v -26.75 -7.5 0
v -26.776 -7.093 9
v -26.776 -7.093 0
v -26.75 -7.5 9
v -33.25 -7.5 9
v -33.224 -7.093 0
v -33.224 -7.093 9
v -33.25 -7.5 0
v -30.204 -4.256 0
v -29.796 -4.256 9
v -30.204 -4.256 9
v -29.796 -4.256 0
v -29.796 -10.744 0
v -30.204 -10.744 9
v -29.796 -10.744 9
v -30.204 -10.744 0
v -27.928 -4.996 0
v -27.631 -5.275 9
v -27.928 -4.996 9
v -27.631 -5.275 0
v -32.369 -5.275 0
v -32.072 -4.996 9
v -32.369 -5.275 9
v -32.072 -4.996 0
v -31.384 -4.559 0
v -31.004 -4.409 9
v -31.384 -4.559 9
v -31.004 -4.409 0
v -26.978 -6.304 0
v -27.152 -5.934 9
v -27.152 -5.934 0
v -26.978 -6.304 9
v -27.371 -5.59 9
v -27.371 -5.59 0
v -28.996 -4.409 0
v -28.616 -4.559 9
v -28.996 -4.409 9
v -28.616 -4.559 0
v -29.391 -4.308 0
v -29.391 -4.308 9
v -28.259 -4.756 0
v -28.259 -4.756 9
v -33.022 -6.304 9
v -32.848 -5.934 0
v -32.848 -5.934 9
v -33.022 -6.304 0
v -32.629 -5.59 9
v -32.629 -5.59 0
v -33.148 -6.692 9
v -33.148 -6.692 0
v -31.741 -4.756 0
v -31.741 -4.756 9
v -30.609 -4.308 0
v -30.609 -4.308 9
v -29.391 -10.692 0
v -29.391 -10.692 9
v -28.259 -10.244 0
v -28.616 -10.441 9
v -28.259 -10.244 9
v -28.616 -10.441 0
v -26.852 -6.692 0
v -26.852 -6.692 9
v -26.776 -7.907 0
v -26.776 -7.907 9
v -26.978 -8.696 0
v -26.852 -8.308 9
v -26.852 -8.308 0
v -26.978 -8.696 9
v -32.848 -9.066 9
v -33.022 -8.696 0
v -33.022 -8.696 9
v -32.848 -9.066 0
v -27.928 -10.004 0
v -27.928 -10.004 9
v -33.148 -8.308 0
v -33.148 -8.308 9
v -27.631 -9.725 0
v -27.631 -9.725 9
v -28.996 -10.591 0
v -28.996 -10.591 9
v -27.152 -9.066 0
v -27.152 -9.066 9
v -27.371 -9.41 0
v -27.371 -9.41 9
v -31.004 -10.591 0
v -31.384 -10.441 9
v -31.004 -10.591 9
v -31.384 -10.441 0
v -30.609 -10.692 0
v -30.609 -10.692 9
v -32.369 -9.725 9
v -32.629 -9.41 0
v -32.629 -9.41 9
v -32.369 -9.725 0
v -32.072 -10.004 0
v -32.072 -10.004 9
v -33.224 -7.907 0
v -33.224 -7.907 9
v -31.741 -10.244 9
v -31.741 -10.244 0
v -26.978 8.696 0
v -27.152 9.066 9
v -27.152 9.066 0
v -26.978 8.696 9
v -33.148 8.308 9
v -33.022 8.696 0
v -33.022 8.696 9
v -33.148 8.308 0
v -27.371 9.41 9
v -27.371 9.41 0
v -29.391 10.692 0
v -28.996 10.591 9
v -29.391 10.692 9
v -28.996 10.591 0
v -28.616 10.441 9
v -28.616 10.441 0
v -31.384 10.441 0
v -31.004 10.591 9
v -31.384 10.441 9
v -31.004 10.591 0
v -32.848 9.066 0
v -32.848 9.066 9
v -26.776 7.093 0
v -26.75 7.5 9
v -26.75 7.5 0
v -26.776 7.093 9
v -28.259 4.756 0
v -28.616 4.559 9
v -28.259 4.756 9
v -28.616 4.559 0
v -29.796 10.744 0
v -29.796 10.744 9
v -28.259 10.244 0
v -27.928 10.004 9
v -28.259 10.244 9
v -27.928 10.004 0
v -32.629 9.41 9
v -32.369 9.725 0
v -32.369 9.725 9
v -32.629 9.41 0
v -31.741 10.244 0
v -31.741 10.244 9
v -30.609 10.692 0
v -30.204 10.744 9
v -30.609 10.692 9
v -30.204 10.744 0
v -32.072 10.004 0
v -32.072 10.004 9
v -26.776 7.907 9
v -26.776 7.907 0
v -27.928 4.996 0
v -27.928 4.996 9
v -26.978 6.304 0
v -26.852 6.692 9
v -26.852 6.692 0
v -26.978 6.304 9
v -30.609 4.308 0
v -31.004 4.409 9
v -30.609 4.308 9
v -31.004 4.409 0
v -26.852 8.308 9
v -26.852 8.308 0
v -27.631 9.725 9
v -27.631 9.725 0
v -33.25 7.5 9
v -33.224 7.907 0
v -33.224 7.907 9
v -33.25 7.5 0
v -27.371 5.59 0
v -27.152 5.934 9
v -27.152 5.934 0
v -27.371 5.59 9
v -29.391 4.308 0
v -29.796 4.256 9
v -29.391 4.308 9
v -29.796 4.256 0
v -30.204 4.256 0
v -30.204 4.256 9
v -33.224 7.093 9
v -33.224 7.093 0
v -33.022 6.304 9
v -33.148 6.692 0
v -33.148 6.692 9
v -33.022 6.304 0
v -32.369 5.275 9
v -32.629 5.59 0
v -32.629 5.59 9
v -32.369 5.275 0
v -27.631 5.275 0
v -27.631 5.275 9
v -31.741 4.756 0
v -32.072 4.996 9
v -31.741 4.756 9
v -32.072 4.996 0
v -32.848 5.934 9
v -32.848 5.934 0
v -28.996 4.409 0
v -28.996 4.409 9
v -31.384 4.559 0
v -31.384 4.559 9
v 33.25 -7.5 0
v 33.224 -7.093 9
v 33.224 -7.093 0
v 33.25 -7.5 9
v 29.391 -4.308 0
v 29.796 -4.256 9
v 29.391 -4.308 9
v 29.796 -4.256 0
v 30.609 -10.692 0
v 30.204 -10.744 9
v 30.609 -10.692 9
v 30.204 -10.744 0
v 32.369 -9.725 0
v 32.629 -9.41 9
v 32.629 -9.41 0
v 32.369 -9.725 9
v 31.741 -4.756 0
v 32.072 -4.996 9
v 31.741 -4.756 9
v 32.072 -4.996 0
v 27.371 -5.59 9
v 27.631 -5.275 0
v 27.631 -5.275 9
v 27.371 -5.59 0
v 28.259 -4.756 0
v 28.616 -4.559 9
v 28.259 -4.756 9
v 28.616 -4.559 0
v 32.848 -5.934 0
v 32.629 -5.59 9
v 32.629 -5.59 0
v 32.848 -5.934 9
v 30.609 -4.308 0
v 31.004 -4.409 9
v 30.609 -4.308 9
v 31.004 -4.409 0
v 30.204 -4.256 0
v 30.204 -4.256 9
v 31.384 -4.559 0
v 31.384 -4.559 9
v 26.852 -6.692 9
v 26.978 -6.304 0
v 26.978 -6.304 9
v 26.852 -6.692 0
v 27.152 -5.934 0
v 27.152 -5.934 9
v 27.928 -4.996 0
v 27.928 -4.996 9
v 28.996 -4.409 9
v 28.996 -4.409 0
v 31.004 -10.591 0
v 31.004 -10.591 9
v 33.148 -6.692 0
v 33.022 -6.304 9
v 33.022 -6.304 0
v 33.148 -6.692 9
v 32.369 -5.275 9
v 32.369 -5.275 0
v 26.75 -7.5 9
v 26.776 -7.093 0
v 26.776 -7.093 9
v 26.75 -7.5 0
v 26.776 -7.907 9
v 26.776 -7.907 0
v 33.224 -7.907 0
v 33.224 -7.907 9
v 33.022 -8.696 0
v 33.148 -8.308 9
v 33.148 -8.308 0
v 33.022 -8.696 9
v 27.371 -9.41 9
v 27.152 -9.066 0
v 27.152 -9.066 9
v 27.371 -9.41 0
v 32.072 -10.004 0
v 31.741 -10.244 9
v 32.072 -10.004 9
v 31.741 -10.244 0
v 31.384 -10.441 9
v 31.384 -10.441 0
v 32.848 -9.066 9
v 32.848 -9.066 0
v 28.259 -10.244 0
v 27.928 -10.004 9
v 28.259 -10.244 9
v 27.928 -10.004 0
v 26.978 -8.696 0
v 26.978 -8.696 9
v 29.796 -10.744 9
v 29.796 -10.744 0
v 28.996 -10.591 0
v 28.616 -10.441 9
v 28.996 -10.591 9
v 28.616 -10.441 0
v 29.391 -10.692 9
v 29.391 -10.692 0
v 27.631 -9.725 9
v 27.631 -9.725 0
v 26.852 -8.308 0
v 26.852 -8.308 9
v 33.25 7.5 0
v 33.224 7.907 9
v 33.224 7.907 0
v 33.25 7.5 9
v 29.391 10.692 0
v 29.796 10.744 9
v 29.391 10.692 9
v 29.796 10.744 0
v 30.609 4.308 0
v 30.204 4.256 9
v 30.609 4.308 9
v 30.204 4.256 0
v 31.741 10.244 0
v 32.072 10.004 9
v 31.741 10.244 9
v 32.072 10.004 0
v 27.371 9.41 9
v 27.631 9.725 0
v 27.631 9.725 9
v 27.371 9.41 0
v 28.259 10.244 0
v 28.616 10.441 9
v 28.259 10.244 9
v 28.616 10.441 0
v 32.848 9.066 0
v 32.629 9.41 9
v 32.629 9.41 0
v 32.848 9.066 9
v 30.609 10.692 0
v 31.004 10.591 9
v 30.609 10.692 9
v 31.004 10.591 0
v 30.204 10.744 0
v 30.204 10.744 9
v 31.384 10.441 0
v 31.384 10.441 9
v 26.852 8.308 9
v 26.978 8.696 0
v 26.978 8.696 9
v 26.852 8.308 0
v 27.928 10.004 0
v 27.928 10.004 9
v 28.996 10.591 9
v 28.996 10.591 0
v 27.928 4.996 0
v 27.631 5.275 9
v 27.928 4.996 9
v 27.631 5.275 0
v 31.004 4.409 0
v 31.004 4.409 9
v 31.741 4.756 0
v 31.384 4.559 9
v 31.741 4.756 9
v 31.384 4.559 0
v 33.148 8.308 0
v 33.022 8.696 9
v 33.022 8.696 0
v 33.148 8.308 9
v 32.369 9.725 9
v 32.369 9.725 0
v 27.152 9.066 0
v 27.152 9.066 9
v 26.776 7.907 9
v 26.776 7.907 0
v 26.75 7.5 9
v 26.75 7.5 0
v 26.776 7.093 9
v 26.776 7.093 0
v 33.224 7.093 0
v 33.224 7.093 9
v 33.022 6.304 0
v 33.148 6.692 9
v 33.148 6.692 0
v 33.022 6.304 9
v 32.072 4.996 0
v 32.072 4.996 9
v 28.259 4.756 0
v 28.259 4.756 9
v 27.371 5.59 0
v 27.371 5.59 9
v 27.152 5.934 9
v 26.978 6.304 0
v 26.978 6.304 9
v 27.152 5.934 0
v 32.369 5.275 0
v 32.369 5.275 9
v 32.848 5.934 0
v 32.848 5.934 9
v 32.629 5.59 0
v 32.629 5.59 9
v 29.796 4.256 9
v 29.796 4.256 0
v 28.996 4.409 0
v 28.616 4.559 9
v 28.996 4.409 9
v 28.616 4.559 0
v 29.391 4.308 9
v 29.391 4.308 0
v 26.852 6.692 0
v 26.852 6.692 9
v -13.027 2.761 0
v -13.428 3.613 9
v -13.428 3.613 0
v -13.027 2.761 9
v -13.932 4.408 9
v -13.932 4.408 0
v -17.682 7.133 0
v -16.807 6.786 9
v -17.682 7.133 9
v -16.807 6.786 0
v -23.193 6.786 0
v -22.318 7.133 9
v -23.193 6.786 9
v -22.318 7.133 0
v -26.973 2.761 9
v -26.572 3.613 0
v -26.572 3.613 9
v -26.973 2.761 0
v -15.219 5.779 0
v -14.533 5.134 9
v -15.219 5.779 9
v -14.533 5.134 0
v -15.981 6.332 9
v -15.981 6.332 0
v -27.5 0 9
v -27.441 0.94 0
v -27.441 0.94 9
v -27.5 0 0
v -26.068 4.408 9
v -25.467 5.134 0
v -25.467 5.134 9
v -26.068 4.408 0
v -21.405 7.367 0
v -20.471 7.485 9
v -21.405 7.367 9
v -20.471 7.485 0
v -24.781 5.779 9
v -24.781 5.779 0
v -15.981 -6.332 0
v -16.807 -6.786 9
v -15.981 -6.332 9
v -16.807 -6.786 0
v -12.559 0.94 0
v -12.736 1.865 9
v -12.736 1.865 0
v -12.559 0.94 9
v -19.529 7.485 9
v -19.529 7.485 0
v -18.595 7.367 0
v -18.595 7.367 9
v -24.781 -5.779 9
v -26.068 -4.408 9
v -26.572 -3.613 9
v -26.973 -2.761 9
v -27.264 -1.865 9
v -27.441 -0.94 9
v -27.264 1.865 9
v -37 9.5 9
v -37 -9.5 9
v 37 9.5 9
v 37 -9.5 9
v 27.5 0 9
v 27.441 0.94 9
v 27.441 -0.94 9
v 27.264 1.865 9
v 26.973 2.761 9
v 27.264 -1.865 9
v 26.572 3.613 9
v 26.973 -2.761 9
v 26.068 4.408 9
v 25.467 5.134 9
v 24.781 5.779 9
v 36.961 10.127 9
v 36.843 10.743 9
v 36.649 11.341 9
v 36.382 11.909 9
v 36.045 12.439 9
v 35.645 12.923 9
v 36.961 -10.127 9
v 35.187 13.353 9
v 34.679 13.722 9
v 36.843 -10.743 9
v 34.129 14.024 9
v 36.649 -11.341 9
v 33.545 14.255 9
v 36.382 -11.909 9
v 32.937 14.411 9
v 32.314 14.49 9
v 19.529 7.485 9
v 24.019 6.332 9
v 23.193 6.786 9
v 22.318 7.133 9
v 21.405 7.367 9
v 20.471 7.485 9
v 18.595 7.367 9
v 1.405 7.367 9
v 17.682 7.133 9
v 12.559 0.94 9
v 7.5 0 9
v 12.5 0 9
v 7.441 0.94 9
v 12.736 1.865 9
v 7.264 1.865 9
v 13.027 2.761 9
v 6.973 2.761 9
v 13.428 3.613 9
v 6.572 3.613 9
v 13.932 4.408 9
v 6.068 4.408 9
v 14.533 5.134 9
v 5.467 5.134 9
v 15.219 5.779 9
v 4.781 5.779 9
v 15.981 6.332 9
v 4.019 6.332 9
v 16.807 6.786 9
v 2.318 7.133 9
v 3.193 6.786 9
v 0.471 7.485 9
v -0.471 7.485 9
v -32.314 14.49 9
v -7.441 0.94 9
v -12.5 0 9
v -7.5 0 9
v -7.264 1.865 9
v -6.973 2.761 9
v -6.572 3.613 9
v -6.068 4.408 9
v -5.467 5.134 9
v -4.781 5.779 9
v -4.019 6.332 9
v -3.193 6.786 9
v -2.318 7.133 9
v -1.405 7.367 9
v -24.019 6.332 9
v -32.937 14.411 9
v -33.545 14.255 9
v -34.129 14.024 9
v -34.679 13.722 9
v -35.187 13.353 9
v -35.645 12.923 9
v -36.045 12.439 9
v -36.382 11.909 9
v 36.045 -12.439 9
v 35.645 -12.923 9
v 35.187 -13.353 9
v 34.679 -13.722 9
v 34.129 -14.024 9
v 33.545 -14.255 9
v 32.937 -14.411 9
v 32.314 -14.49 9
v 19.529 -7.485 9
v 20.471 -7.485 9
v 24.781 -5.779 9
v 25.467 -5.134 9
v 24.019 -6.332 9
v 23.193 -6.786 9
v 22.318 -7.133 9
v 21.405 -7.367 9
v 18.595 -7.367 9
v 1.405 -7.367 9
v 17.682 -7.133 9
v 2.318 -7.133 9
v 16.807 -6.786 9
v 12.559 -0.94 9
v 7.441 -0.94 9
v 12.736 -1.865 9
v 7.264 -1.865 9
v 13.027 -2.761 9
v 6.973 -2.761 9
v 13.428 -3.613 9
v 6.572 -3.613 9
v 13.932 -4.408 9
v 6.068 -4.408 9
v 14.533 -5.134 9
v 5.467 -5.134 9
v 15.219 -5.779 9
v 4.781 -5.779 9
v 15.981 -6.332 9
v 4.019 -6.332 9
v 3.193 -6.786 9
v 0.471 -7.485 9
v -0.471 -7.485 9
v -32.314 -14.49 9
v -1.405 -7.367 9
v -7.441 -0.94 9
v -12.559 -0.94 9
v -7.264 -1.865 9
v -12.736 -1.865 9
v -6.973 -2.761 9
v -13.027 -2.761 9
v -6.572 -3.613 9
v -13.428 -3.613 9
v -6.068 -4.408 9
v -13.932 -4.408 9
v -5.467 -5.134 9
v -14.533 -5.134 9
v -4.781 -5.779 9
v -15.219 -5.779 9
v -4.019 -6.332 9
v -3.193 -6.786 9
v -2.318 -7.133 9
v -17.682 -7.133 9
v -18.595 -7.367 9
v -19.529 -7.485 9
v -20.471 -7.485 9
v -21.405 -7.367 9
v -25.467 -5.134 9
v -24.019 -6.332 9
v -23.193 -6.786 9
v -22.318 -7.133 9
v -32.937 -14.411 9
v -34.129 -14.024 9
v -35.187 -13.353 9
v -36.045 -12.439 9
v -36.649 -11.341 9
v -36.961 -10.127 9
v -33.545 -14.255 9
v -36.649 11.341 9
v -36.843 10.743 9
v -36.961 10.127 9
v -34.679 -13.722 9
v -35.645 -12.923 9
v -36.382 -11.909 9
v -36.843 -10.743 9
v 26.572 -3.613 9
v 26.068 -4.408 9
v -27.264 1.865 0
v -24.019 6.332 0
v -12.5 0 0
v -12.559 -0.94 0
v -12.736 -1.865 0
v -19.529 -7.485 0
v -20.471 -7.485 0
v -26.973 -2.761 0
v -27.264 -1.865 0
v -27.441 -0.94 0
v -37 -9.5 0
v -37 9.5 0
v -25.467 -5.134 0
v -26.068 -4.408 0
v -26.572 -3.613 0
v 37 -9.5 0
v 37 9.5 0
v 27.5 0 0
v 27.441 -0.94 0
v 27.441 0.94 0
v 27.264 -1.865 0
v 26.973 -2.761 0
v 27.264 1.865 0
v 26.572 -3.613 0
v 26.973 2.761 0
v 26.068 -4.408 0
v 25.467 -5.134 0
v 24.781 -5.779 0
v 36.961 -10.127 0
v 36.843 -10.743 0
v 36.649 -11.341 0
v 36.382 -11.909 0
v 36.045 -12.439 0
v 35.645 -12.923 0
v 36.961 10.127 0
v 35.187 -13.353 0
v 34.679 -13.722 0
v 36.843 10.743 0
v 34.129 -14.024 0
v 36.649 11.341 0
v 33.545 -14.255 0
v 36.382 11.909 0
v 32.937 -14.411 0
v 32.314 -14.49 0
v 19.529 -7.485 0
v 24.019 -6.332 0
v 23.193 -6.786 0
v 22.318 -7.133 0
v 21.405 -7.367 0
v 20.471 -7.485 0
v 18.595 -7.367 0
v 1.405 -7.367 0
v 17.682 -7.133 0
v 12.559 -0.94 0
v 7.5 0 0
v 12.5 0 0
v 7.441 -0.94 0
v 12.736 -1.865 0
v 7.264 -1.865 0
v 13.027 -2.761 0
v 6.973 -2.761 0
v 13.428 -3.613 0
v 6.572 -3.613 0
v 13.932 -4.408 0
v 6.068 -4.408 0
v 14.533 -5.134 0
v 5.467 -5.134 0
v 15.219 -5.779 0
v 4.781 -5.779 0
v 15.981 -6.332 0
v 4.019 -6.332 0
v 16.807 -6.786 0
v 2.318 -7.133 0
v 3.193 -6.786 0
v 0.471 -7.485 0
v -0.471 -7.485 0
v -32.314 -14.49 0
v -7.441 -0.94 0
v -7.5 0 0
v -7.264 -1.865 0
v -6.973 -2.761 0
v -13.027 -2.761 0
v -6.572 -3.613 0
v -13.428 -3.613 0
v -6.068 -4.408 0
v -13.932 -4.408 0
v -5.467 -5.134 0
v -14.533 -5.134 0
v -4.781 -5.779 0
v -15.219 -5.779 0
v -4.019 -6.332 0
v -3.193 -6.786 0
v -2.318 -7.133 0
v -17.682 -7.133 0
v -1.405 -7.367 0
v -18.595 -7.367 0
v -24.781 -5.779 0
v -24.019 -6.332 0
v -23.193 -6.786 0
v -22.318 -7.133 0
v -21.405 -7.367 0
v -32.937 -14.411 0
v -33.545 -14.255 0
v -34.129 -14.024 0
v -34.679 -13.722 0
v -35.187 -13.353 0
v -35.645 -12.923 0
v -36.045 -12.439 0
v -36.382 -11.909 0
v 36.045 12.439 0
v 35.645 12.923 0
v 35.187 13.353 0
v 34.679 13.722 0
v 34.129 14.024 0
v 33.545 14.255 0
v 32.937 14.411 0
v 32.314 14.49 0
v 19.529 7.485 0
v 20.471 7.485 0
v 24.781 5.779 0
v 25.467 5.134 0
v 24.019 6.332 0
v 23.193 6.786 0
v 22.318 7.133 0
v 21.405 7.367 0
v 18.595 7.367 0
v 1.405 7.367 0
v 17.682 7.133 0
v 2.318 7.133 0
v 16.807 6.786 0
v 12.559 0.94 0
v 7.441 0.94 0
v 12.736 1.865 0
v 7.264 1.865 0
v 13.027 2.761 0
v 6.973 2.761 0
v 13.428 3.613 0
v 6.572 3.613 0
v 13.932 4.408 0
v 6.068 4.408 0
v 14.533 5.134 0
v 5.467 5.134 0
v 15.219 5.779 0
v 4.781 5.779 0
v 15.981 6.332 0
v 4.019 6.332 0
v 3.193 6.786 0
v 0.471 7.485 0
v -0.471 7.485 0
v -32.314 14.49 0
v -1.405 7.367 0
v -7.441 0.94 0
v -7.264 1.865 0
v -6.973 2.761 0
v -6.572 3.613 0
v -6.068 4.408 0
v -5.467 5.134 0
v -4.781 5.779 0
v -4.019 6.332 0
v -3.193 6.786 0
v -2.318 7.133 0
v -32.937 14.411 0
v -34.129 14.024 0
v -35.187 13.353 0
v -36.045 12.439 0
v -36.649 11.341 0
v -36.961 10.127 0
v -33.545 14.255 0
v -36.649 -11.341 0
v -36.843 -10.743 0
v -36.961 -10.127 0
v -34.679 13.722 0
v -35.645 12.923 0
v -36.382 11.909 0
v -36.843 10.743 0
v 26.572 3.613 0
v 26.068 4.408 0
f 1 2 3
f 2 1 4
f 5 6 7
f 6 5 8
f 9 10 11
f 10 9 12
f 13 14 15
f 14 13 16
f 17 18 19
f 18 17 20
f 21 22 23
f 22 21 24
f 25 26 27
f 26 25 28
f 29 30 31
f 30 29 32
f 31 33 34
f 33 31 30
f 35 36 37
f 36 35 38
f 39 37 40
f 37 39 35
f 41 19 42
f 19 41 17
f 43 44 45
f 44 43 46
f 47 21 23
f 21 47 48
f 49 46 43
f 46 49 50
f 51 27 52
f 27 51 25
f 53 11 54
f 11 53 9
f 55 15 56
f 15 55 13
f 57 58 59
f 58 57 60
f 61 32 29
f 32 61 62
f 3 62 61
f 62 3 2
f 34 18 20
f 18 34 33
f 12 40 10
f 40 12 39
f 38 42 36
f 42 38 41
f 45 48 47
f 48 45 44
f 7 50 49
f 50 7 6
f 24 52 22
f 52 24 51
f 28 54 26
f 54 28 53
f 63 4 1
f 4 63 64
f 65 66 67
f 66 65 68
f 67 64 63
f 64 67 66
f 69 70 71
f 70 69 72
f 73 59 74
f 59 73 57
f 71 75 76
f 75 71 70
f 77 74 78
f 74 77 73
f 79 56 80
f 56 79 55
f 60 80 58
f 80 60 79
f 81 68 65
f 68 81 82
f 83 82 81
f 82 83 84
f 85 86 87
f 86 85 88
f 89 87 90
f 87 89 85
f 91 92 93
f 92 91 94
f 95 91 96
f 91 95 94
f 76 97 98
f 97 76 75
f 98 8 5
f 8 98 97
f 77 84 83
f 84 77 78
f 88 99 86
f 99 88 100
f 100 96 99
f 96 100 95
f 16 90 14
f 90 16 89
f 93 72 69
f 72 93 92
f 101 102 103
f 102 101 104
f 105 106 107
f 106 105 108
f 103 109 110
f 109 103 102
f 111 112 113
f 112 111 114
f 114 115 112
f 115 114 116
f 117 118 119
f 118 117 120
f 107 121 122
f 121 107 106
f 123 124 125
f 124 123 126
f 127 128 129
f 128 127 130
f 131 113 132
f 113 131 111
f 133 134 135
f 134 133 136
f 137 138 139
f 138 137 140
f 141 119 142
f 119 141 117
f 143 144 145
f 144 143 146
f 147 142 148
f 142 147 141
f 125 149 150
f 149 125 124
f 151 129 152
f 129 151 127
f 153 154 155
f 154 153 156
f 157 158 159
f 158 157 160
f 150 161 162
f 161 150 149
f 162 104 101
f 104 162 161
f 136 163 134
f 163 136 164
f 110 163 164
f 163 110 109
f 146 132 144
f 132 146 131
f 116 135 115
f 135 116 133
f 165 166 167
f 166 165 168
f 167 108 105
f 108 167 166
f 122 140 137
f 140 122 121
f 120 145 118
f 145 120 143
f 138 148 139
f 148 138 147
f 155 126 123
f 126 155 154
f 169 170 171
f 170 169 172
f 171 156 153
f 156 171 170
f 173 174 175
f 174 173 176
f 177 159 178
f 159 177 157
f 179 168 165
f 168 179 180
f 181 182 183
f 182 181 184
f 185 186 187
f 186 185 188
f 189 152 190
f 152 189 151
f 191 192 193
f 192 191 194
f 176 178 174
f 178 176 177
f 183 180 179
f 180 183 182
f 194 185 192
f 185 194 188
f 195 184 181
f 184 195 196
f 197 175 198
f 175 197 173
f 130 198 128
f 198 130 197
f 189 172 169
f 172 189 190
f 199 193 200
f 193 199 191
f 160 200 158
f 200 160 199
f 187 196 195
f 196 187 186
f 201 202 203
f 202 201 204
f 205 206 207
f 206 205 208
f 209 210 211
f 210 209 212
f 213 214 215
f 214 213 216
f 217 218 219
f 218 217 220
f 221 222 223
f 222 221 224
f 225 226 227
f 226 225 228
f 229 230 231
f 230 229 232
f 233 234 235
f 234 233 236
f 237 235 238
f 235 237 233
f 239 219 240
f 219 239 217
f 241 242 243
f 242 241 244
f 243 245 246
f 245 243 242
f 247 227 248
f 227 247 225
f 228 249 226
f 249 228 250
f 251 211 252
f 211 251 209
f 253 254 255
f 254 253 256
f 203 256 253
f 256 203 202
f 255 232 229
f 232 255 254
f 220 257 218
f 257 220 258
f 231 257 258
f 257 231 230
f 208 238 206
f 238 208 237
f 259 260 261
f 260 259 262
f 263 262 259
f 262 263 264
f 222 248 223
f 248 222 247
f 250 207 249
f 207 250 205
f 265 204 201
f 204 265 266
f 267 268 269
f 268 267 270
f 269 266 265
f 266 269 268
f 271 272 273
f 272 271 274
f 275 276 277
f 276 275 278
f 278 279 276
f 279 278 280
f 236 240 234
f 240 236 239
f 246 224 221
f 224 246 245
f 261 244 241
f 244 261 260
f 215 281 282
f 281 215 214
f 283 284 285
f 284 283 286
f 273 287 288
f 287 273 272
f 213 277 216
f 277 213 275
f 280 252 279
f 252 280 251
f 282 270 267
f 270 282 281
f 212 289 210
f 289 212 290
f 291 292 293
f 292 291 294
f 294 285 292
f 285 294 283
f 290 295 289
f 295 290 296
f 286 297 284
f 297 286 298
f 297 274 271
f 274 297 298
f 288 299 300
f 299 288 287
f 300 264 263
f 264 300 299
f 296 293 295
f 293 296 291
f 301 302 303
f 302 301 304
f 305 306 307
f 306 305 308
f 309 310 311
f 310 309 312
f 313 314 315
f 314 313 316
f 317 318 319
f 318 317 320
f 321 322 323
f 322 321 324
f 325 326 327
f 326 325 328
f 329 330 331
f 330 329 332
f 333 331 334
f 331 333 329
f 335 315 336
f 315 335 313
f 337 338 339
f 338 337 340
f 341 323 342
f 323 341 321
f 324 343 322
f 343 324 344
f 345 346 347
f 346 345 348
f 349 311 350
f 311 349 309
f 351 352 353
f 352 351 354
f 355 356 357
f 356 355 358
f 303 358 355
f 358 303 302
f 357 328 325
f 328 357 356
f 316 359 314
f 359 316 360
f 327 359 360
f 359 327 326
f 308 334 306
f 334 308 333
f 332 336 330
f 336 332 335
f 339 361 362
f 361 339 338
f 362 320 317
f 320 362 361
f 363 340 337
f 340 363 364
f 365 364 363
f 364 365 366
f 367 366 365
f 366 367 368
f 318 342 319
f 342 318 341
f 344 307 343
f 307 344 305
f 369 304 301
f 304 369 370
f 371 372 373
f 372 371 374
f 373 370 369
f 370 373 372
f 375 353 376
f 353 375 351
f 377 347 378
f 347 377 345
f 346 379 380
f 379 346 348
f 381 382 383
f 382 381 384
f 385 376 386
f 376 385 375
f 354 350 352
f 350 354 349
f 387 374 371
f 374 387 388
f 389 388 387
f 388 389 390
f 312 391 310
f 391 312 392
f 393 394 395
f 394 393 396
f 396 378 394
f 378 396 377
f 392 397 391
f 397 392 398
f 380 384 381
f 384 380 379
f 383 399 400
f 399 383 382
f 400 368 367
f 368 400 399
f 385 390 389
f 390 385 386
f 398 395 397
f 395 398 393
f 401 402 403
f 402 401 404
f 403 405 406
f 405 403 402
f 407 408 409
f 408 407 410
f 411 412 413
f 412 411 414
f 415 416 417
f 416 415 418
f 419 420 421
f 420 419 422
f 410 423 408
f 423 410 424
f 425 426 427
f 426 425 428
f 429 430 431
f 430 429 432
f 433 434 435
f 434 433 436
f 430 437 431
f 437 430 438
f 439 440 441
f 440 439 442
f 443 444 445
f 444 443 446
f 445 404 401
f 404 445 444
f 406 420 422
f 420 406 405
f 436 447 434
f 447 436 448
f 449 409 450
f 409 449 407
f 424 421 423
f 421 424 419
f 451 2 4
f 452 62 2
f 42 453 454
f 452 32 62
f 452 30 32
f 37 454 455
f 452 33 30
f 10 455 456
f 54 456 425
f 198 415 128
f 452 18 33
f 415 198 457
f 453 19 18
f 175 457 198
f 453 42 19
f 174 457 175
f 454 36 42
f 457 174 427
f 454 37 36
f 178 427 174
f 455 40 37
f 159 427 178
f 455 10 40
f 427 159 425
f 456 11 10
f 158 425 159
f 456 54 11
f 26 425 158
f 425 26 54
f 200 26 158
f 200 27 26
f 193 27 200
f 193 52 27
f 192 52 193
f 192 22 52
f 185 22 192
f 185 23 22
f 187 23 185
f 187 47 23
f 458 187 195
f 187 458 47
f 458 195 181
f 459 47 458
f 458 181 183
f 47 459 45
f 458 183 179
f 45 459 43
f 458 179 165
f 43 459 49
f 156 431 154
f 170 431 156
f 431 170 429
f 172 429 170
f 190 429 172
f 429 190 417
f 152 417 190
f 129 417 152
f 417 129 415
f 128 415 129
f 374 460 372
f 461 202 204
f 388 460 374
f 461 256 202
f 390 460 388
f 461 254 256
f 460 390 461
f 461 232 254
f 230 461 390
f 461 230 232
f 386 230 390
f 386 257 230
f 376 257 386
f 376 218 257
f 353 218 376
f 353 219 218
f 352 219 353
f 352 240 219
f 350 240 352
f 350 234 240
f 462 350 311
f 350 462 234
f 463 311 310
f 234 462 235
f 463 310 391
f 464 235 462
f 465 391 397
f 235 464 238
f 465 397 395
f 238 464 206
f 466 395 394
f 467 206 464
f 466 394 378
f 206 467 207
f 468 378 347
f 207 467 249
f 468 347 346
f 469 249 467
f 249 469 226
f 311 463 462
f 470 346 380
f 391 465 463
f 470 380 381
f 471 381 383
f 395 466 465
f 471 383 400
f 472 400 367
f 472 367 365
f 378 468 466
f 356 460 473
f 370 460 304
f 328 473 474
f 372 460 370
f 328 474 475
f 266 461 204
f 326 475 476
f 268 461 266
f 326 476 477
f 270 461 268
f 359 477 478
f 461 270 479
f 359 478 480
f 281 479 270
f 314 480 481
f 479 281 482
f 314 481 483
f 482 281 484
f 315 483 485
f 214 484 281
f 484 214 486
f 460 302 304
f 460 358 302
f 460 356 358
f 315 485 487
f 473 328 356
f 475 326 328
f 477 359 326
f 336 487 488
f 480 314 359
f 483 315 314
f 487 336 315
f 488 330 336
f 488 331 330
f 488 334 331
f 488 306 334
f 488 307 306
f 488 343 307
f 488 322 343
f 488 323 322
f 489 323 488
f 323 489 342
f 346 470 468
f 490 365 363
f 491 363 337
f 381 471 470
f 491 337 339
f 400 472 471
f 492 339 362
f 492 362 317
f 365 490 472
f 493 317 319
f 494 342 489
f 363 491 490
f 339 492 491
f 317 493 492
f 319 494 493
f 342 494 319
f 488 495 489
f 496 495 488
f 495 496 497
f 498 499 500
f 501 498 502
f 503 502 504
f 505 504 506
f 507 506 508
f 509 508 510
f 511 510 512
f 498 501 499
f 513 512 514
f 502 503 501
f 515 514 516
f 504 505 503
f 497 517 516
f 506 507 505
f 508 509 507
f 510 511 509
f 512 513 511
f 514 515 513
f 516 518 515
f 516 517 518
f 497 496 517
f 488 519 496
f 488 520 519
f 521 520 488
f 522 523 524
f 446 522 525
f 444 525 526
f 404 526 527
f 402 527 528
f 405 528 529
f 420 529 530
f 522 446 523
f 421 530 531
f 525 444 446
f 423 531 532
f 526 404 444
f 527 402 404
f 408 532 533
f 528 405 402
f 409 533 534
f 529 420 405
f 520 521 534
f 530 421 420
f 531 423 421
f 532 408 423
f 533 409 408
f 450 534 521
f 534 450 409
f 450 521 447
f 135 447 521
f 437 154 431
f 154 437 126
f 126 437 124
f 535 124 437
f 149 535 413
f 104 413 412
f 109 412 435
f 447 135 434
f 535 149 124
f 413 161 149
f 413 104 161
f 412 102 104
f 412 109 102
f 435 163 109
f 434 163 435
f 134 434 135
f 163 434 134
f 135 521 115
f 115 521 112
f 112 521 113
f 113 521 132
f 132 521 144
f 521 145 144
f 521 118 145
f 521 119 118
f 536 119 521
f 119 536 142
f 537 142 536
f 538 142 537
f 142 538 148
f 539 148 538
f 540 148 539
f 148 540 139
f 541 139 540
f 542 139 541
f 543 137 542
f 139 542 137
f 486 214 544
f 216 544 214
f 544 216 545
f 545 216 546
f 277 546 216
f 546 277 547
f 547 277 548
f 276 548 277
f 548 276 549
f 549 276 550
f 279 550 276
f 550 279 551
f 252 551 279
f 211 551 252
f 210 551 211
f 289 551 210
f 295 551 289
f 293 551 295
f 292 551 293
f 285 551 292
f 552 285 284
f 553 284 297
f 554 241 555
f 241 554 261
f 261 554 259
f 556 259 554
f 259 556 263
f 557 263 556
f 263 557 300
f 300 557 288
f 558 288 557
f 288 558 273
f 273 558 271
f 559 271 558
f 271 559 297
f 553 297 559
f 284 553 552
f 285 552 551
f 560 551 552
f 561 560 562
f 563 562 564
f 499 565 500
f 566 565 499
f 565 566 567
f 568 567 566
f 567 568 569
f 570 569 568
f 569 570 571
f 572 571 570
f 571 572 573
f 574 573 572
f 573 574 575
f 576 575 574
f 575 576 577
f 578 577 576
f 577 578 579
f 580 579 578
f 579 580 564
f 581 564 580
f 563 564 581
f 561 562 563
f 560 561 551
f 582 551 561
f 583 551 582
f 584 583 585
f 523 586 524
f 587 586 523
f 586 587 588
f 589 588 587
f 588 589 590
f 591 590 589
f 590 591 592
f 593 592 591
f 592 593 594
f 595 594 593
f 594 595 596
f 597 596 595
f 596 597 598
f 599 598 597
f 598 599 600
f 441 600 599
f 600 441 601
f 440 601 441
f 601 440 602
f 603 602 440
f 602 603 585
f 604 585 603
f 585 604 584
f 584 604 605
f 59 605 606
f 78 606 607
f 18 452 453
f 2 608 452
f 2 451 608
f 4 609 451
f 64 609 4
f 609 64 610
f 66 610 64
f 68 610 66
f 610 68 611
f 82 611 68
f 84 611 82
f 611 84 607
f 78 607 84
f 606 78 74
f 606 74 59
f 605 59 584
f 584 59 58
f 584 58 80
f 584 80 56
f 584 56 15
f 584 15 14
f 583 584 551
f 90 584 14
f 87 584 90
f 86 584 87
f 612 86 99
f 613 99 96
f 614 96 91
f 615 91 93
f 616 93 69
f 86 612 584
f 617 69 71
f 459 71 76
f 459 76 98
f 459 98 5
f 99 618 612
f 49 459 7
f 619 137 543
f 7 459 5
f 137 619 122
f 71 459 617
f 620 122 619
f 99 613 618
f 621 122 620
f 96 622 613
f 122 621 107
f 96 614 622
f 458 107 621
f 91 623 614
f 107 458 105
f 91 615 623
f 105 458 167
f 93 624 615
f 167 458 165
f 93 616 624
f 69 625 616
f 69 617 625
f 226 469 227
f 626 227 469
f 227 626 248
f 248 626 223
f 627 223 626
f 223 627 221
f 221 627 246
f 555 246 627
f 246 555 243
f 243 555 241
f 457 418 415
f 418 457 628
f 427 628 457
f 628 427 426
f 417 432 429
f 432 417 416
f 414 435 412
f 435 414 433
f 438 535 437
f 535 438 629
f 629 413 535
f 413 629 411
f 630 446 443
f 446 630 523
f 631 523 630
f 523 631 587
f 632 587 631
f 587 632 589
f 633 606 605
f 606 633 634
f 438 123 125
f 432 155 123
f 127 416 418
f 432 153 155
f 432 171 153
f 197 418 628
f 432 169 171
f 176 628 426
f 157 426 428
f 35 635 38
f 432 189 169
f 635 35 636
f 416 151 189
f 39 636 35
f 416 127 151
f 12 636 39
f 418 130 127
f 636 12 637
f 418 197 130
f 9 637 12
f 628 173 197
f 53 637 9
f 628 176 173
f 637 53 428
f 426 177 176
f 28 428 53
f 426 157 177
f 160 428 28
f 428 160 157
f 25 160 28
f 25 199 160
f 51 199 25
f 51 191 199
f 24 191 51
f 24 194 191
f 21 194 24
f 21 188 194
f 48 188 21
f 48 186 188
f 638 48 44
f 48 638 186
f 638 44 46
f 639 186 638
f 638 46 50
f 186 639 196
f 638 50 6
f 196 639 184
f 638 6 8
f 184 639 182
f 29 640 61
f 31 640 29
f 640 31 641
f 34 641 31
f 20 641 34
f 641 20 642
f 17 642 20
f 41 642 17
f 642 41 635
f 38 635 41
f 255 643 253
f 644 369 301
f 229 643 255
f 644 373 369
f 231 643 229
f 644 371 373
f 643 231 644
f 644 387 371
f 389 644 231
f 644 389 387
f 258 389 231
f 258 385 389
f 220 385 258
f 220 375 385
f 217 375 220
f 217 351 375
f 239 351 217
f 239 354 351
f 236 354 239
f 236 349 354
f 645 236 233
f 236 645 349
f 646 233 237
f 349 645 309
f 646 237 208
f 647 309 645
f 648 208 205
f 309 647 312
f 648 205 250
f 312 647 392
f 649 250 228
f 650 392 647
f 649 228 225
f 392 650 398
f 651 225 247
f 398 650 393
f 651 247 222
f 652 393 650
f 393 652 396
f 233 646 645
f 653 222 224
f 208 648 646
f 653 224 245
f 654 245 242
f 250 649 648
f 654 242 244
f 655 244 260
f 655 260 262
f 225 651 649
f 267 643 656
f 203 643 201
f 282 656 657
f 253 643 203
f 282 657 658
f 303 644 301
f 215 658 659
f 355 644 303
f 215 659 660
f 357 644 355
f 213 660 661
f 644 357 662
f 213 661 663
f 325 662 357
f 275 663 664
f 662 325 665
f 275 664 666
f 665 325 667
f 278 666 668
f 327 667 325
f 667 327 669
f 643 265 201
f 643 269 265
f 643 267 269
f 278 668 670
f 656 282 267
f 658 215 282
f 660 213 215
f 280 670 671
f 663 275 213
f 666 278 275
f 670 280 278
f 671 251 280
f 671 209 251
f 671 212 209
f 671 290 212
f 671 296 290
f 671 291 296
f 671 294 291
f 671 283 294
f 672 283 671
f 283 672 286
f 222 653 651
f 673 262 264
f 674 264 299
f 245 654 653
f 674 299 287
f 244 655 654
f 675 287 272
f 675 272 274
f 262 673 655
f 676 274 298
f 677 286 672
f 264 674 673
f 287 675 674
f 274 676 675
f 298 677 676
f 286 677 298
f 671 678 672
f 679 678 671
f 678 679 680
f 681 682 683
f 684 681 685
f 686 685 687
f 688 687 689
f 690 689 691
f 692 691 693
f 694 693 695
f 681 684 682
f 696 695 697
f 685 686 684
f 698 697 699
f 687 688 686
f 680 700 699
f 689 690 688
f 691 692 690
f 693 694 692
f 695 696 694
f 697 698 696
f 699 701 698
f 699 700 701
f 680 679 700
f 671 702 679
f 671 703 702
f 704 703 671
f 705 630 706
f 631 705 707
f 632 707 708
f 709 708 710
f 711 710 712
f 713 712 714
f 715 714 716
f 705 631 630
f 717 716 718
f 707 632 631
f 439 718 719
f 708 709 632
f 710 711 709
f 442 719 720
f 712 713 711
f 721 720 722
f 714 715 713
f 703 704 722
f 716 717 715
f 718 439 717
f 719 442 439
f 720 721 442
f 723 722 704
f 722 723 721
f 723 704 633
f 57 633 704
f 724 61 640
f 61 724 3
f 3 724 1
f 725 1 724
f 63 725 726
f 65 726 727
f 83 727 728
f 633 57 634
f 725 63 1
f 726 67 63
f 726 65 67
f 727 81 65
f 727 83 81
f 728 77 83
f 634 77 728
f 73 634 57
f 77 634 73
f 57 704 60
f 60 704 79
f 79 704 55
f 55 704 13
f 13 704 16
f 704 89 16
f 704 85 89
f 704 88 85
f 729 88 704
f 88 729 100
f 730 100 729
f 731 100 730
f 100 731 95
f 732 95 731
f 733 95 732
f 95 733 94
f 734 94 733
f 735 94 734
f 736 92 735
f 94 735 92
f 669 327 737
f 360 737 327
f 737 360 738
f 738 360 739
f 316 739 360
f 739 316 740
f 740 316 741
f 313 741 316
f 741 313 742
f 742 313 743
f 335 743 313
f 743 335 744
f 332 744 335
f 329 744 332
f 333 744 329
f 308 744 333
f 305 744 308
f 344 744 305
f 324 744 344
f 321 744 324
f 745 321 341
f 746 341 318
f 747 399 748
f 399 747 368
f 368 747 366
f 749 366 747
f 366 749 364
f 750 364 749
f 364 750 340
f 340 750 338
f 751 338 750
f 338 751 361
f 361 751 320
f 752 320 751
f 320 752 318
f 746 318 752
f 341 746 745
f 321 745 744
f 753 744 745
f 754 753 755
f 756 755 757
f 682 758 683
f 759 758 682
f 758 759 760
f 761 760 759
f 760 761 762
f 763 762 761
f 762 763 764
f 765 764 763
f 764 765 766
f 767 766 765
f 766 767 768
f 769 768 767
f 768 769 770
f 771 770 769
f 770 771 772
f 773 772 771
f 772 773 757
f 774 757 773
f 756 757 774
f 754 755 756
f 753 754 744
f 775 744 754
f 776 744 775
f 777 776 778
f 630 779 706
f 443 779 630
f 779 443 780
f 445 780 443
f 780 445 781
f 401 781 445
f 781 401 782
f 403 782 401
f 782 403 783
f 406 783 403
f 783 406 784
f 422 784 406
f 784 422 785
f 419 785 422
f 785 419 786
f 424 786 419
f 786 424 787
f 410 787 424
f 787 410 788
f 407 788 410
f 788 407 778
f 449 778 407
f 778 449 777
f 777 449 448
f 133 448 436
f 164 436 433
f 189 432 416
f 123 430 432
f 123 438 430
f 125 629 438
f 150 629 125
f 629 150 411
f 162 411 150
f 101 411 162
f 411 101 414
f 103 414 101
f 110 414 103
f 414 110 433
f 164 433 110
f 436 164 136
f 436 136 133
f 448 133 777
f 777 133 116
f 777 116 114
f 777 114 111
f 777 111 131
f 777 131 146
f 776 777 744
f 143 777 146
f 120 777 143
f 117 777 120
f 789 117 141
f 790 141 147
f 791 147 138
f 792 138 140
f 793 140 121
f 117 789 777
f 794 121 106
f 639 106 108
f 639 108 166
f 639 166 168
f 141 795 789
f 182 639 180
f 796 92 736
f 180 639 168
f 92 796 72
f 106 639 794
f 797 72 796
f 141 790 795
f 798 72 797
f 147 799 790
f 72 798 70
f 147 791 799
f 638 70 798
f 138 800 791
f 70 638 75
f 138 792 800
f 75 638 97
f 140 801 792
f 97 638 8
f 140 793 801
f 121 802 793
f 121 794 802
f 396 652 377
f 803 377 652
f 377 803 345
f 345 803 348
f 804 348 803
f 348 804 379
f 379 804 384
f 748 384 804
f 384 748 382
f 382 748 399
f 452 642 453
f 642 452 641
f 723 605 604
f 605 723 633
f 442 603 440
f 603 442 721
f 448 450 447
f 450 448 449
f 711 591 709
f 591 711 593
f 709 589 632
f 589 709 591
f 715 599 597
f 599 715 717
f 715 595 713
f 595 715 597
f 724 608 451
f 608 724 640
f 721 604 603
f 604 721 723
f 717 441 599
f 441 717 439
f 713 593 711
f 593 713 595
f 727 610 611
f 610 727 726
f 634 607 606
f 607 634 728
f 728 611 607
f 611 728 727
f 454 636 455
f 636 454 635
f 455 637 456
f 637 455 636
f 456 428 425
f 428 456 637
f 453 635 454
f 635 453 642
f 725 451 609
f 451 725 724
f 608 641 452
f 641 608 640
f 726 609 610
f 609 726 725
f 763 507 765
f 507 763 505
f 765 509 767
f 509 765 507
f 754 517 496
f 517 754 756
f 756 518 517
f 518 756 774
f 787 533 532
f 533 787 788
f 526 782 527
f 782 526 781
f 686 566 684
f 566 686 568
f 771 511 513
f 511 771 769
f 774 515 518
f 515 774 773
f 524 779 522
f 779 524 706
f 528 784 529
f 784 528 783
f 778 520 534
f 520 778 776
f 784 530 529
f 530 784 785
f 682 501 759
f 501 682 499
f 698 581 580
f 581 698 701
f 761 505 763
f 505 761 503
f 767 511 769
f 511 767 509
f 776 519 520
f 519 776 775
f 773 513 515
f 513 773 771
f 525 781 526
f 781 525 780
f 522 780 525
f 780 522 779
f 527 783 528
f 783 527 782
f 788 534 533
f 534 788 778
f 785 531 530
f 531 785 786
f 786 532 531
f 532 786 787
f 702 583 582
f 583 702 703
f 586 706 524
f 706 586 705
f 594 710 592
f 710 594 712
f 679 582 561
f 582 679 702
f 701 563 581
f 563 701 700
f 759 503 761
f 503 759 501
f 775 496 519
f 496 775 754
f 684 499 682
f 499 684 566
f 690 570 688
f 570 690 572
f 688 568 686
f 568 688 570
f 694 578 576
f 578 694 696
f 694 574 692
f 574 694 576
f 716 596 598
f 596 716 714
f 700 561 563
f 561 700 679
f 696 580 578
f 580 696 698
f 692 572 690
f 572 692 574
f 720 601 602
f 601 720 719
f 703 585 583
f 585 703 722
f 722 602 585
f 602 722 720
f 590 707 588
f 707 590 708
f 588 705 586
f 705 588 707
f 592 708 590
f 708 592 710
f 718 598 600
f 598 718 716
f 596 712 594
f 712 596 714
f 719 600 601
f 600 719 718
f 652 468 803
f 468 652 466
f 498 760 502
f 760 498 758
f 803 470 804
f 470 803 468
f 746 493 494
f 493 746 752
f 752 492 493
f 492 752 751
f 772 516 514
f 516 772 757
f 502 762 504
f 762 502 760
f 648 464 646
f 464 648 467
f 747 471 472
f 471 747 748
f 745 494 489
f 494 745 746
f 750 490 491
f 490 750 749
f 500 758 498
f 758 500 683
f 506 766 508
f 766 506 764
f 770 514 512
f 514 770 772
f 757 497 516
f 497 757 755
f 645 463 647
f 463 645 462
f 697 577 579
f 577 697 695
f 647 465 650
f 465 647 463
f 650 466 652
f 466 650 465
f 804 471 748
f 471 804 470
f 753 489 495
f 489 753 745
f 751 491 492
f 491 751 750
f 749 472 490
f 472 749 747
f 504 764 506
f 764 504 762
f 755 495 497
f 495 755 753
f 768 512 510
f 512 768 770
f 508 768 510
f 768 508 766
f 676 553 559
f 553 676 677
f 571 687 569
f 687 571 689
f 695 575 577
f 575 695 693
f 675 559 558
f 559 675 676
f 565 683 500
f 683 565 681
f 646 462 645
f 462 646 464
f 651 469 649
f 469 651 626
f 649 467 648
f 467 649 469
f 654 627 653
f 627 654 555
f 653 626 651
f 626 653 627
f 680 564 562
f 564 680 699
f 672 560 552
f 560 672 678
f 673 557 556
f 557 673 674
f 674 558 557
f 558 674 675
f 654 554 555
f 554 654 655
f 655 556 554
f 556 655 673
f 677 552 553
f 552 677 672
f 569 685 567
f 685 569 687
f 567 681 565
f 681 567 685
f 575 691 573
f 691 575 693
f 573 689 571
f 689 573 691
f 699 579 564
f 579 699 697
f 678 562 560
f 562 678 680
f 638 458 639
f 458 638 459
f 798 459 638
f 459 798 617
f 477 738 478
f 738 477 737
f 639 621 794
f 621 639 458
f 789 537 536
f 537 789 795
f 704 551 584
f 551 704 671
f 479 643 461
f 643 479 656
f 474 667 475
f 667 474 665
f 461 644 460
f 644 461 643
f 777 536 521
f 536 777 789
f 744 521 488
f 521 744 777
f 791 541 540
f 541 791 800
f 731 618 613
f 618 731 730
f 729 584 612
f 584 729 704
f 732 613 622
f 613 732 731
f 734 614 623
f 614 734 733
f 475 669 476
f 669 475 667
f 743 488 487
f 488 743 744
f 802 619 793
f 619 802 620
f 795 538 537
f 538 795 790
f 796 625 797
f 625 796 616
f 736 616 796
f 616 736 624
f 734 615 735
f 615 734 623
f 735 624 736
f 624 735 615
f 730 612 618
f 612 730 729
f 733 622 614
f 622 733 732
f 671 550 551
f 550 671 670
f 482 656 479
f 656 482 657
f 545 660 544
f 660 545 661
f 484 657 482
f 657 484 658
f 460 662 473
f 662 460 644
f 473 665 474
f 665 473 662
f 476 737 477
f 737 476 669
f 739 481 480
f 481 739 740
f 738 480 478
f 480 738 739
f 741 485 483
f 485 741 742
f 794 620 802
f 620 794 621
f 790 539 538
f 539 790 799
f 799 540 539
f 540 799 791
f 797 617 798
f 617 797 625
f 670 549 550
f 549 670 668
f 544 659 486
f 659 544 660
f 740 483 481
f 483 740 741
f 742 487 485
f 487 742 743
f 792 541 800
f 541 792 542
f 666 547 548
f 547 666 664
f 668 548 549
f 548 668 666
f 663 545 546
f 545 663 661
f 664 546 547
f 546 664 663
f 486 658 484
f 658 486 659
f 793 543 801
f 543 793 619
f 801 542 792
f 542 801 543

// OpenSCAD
$fn = 50;


difference() {
	union() {
		hull() {
			translate(v = [-32.0000000000, 9.5000000000, 0]) {
				cylinder(h = 9, r = 5);
			}
			translate(v = [32.0000000000, 9.5000000000, 0]) {
				cylinder(h = 9, r = 5);
			}
			translate(v = [-32.0000000000, -9.5000000000, 0]) {
				cylinder(h = 9, r = 5);
			}
			translate(v = [32.0000000000, -9.5000000000, 0]) {
				cylinder(h = 9, r = 5);
			}
		}
	}
	union() {
		#translate(v = [-30.0000000000, -7.5000000000, -100.0000000000]) {
			cylinder(h = 200, r = 3.2500000000);
		}
		#translate(v = [-30.0000000000, 7.5000000000, -100.0000000000]) {
			cylinder(h = 200, r = 3.2500000000);
		}
		#translate(v = [30.0000000000, -7.5000000000, -100.0000000000]) {
			cylinder(h = 200, r = 3.2500000000);
		}
		#translate(v = [30.0000000000, 7.5000000000, -100.0000000000]) {
			cylinder(h = 200, r = 3.2500000000);
		}
		#translate(v = [-20.0000000000, 0, 0]) {
			cylinder(h = 9, r = 7.5000000000);
		}
		#cylinder(h = 9, r = 7.5000000000);
		#translate(v = [20.0000000000, 0, 0]) {
			cylinder(h = 9, r = 7.5000000000);
		}
	}
}
